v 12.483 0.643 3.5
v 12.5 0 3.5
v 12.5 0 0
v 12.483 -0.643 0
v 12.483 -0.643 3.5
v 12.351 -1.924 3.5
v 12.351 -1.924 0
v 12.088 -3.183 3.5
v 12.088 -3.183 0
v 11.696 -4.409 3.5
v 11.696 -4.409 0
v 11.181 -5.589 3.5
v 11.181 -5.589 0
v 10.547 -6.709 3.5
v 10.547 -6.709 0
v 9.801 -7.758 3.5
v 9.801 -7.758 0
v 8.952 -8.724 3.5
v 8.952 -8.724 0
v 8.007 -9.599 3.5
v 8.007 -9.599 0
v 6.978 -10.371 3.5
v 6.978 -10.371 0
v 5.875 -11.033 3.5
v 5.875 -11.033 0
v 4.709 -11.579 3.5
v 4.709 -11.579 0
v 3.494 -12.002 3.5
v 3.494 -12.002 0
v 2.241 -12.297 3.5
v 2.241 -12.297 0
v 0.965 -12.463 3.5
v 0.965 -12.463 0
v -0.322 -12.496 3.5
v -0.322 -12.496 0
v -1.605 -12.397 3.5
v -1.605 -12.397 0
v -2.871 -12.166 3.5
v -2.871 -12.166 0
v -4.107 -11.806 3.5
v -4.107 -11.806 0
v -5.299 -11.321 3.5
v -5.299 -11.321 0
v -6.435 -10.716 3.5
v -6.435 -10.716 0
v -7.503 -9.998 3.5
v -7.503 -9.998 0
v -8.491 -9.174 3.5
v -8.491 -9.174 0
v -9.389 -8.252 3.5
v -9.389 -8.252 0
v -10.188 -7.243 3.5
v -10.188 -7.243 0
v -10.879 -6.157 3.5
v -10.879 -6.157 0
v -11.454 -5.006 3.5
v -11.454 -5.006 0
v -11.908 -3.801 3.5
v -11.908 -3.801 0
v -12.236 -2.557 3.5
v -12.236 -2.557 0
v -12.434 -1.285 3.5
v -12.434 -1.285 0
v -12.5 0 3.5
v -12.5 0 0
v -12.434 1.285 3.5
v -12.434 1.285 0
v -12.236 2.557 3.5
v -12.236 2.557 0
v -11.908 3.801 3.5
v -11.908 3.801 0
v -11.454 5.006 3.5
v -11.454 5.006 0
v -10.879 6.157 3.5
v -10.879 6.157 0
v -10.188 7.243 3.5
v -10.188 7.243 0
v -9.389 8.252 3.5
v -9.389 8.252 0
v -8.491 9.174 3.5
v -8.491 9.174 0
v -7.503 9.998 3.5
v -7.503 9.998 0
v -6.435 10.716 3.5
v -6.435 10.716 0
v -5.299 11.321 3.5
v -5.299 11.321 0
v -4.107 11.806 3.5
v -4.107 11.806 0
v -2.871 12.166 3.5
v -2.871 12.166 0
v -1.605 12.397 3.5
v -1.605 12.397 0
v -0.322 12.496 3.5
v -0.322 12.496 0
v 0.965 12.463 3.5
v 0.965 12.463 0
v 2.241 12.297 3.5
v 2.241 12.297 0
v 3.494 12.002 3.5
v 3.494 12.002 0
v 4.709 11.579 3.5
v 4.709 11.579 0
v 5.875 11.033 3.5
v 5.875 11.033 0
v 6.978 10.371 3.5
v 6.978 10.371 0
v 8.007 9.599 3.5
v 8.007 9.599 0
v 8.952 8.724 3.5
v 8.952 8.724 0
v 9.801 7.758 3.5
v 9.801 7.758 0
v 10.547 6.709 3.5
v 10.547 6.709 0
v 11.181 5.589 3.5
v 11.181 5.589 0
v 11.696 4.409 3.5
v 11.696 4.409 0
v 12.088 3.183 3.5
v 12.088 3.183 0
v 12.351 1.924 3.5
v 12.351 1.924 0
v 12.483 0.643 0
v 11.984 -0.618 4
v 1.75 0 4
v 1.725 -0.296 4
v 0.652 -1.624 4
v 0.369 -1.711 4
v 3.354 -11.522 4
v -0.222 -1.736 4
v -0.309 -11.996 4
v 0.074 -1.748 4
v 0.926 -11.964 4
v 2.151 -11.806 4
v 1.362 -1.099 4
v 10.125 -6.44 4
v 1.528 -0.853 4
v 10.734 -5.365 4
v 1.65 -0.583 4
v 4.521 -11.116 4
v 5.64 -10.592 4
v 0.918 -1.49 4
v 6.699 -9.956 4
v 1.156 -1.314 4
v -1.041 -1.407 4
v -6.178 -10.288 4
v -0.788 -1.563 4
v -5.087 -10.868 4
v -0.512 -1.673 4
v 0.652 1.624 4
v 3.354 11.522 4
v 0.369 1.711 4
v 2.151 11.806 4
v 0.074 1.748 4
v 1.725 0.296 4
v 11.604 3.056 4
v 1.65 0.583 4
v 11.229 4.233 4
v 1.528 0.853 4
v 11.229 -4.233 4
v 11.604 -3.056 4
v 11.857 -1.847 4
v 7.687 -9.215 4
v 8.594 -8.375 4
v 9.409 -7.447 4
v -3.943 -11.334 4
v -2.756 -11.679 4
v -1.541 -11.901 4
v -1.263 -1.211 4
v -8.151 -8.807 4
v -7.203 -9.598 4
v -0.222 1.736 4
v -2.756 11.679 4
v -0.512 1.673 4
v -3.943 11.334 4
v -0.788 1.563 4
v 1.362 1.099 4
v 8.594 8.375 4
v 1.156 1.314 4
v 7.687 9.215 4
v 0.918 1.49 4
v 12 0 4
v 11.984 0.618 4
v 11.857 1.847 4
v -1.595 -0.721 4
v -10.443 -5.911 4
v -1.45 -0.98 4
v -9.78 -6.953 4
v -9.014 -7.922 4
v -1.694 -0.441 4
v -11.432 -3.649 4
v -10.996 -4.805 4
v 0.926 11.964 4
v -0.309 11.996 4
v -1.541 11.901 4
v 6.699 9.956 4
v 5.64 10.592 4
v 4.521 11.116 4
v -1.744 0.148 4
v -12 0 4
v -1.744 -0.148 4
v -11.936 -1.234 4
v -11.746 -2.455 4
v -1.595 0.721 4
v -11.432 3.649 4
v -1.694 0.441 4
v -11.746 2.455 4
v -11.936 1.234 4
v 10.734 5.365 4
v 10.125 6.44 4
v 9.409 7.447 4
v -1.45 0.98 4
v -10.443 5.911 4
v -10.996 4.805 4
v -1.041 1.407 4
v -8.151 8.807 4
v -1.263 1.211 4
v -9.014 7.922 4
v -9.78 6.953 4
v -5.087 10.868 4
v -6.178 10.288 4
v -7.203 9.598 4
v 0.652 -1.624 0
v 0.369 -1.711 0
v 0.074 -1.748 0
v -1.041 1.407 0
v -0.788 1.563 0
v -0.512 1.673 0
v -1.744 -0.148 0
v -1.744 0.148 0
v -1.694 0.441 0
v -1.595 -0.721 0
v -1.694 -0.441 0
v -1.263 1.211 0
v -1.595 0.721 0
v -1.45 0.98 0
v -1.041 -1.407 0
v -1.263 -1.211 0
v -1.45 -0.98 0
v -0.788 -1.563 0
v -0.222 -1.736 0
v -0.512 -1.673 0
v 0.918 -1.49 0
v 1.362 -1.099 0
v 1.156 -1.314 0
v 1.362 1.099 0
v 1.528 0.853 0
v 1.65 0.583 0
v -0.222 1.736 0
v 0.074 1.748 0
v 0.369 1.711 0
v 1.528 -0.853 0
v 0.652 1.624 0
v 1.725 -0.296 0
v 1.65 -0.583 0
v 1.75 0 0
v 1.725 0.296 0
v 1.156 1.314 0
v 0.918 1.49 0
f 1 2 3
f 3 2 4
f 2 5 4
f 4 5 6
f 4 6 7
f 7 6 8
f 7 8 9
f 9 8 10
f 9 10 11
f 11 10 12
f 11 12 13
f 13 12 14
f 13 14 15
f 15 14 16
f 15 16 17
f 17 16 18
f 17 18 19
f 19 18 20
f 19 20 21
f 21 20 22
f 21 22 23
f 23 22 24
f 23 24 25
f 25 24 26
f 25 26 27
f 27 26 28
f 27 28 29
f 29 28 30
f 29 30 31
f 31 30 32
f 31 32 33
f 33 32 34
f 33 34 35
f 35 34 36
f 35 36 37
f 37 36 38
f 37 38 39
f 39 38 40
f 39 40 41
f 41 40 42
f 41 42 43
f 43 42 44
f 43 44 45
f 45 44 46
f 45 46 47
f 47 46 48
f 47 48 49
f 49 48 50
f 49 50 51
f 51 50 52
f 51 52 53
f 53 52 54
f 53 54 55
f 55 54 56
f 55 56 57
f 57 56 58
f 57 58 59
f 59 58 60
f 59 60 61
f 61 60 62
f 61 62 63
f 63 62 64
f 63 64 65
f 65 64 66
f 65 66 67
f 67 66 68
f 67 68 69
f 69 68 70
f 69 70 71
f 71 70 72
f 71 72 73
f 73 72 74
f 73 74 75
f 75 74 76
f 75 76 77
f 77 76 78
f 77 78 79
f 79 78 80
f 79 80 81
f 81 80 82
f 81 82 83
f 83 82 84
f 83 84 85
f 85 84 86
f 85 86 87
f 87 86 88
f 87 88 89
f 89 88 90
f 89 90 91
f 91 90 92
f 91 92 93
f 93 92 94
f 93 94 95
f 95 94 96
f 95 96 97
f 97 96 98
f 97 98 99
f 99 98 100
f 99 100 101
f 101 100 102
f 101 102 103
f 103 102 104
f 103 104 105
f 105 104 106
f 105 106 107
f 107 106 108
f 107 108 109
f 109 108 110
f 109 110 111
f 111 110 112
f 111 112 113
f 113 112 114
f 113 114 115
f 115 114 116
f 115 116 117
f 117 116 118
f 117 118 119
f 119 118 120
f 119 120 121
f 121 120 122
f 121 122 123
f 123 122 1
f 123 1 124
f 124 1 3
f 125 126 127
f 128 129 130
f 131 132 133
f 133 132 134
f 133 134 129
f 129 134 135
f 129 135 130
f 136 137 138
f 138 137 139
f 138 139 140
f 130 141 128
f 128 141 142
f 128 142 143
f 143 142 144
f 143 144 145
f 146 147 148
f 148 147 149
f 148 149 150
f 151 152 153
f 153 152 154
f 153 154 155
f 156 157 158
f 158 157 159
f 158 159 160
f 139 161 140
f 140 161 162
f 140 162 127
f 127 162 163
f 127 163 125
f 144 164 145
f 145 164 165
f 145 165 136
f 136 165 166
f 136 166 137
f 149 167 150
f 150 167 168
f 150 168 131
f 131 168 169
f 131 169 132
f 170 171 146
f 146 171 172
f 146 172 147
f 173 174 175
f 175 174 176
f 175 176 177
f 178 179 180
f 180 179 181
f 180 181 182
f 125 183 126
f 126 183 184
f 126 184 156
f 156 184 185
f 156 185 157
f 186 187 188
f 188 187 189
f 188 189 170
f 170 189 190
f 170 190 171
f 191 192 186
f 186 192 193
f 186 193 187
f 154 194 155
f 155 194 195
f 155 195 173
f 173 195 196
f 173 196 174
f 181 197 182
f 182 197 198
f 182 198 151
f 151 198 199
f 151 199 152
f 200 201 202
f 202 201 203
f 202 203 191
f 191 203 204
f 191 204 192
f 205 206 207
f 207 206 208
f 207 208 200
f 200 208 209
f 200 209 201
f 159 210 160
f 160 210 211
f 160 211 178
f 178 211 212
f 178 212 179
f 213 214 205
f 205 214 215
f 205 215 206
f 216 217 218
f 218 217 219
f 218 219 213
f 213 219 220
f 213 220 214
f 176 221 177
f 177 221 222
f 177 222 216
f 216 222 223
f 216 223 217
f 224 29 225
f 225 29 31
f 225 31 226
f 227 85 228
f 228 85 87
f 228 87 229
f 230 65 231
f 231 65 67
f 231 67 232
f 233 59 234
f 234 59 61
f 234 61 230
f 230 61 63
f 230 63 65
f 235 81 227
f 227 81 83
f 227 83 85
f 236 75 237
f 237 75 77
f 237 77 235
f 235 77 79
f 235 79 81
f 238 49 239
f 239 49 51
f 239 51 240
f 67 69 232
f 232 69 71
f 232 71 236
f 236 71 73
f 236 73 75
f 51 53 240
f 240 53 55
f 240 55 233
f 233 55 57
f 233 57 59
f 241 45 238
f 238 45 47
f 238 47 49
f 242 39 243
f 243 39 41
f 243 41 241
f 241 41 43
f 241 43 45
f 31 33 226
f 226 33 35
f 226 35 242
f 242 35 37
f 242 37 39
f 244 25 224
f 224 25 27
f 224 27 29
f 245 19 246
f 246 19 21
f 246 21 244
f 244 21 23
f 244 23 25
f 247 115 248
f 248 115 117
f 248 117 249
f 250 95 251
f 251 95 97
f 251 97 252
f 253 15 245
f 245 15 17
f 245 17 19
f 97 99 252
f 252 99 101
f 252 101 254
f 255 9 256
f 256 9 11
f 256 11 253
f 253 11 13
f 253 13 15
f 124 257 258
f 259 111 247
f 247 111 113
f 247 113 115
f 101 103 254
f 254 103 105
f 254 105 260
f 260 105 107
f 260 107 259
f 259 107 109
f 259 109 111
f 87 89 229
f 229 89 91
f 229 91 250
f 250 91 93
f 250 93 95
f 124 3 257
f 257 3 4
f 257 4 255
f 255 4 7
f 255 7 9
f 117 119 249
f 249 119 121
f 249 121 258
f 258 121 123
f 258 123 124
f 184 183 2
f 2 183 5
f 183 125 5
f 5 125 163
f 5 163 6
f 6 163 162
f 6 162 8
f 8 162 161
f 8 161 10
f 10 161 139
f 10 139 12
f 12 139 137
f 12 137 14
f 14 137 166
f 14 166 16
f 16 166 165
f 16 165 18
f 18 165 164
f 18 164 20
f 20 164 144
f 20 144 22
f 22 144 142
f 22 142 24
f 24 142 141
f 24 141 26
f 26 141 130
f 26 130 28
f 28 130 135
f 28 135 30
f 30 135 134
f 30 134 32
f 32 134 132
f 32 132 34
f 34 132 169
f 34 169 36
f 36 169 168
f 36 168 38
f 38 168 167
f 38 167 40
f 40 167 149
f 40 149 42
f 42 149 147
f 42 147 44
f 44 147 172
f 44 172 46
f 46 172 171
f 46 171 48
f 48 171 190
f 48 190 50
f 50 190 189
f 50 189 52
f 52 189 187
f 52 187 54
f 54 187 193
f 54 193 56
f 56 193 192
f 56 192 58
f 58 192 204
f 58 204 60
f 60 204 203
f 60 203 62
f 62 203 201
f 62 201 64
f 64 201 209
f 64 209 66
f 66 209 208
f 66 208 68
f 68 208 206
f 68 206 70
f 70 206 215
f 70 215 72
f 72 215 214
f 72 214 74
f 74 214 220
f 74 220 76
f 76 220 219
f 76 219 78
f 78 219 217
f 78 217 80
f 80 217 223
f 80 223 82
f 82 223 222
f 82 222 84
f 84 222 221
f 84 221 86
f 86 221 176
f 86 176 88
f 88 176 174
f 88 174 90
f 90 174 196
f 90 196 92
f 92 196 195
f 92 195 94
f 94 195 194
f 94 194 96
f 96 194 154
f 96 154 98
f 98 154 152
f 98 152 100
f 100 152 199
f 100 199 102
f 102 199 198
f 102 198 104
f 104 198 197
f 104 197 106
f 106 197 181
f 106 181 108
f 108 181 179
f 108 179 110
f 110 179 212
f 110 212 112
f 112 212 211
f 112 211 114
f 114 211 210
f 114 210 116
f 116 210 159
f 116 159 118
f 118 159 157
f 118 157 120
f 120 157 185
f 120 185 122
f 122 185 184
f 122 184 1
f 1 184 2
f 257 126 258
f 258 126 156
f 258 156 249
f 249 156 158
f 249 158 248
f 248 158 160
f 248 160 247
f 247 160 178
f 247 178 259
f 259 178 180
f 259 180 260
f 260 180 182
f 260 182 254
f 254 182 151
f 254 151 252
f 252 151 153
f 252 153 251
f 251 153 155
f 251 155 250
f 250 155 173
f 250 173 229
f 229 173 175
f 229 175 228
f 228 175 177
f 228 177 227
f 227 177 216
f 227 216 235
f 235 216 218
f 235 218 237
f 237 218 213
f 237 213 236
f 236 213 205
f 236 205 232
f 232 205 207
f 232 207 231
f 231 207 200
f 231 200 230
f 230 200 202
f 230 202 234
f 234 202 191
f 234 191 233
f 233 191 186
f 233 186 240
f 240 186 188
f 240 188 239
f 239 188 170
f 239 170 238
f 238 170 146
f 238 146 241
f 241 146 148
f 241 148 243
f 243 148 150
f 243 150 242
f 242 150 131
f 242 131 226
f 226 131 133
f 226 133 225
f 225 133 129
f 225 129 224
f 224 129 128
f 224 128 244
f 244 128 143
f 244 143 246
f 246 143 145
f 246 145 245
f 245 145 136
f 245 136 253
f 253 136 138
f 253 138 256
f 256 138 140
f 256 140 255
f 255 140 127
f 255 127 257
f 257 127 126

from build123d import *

# Parameters (mm, degrees)
SKETCH1_R           = 12.5
BOSS_EXTRUDE1_DEPTH = 4
CHAMFER1_SIZE       = 0.5
SKETCH7_R           = 1.25
CUT_EXTRUDE1_DEPTH  = 19.12456896
SKETCH10_R          = 1.75
CUT_EXTRUDE2_DEPTH  = 19.12456896


with BuildPart() as part:
    # Sketch1 → Boss-Extrude1 (new body)
    with BuildSketch(Plane.XY):
        Circle(SKETCH1_R)
    extrude(amount=BOSS_EXTRUDE1_DEPTH)

    # Chamfer1
    chamfer1_edges = [part.edges().sort_by_distance(p)[0] for p in [
        (-12.5, 0, 4),
    ]]
    chamfer(chamfer1_edges, length=CHAMFER1_SIZE)

    # Sketch7 → Cut-Extrude1 (cut, through all)
    with BuildSketch(Plane.XY.offset(4)):
        Circle(SKETCH7_R)
    extrude(amount=-CUT_EXTRUDE1_DEPTH, mode=Mode.SUBTRACT)

    # Sketch10 → Cut-Extrude2 (cut, through all)
    with BuildSketch(Plane.XY.offset(4)):
        Circle(SKETCH10_R)
    extrude(amount=-CUT_EXTRUDE2_DEPTH, mode=Mode.SUBTRACT)


solid = part.part
